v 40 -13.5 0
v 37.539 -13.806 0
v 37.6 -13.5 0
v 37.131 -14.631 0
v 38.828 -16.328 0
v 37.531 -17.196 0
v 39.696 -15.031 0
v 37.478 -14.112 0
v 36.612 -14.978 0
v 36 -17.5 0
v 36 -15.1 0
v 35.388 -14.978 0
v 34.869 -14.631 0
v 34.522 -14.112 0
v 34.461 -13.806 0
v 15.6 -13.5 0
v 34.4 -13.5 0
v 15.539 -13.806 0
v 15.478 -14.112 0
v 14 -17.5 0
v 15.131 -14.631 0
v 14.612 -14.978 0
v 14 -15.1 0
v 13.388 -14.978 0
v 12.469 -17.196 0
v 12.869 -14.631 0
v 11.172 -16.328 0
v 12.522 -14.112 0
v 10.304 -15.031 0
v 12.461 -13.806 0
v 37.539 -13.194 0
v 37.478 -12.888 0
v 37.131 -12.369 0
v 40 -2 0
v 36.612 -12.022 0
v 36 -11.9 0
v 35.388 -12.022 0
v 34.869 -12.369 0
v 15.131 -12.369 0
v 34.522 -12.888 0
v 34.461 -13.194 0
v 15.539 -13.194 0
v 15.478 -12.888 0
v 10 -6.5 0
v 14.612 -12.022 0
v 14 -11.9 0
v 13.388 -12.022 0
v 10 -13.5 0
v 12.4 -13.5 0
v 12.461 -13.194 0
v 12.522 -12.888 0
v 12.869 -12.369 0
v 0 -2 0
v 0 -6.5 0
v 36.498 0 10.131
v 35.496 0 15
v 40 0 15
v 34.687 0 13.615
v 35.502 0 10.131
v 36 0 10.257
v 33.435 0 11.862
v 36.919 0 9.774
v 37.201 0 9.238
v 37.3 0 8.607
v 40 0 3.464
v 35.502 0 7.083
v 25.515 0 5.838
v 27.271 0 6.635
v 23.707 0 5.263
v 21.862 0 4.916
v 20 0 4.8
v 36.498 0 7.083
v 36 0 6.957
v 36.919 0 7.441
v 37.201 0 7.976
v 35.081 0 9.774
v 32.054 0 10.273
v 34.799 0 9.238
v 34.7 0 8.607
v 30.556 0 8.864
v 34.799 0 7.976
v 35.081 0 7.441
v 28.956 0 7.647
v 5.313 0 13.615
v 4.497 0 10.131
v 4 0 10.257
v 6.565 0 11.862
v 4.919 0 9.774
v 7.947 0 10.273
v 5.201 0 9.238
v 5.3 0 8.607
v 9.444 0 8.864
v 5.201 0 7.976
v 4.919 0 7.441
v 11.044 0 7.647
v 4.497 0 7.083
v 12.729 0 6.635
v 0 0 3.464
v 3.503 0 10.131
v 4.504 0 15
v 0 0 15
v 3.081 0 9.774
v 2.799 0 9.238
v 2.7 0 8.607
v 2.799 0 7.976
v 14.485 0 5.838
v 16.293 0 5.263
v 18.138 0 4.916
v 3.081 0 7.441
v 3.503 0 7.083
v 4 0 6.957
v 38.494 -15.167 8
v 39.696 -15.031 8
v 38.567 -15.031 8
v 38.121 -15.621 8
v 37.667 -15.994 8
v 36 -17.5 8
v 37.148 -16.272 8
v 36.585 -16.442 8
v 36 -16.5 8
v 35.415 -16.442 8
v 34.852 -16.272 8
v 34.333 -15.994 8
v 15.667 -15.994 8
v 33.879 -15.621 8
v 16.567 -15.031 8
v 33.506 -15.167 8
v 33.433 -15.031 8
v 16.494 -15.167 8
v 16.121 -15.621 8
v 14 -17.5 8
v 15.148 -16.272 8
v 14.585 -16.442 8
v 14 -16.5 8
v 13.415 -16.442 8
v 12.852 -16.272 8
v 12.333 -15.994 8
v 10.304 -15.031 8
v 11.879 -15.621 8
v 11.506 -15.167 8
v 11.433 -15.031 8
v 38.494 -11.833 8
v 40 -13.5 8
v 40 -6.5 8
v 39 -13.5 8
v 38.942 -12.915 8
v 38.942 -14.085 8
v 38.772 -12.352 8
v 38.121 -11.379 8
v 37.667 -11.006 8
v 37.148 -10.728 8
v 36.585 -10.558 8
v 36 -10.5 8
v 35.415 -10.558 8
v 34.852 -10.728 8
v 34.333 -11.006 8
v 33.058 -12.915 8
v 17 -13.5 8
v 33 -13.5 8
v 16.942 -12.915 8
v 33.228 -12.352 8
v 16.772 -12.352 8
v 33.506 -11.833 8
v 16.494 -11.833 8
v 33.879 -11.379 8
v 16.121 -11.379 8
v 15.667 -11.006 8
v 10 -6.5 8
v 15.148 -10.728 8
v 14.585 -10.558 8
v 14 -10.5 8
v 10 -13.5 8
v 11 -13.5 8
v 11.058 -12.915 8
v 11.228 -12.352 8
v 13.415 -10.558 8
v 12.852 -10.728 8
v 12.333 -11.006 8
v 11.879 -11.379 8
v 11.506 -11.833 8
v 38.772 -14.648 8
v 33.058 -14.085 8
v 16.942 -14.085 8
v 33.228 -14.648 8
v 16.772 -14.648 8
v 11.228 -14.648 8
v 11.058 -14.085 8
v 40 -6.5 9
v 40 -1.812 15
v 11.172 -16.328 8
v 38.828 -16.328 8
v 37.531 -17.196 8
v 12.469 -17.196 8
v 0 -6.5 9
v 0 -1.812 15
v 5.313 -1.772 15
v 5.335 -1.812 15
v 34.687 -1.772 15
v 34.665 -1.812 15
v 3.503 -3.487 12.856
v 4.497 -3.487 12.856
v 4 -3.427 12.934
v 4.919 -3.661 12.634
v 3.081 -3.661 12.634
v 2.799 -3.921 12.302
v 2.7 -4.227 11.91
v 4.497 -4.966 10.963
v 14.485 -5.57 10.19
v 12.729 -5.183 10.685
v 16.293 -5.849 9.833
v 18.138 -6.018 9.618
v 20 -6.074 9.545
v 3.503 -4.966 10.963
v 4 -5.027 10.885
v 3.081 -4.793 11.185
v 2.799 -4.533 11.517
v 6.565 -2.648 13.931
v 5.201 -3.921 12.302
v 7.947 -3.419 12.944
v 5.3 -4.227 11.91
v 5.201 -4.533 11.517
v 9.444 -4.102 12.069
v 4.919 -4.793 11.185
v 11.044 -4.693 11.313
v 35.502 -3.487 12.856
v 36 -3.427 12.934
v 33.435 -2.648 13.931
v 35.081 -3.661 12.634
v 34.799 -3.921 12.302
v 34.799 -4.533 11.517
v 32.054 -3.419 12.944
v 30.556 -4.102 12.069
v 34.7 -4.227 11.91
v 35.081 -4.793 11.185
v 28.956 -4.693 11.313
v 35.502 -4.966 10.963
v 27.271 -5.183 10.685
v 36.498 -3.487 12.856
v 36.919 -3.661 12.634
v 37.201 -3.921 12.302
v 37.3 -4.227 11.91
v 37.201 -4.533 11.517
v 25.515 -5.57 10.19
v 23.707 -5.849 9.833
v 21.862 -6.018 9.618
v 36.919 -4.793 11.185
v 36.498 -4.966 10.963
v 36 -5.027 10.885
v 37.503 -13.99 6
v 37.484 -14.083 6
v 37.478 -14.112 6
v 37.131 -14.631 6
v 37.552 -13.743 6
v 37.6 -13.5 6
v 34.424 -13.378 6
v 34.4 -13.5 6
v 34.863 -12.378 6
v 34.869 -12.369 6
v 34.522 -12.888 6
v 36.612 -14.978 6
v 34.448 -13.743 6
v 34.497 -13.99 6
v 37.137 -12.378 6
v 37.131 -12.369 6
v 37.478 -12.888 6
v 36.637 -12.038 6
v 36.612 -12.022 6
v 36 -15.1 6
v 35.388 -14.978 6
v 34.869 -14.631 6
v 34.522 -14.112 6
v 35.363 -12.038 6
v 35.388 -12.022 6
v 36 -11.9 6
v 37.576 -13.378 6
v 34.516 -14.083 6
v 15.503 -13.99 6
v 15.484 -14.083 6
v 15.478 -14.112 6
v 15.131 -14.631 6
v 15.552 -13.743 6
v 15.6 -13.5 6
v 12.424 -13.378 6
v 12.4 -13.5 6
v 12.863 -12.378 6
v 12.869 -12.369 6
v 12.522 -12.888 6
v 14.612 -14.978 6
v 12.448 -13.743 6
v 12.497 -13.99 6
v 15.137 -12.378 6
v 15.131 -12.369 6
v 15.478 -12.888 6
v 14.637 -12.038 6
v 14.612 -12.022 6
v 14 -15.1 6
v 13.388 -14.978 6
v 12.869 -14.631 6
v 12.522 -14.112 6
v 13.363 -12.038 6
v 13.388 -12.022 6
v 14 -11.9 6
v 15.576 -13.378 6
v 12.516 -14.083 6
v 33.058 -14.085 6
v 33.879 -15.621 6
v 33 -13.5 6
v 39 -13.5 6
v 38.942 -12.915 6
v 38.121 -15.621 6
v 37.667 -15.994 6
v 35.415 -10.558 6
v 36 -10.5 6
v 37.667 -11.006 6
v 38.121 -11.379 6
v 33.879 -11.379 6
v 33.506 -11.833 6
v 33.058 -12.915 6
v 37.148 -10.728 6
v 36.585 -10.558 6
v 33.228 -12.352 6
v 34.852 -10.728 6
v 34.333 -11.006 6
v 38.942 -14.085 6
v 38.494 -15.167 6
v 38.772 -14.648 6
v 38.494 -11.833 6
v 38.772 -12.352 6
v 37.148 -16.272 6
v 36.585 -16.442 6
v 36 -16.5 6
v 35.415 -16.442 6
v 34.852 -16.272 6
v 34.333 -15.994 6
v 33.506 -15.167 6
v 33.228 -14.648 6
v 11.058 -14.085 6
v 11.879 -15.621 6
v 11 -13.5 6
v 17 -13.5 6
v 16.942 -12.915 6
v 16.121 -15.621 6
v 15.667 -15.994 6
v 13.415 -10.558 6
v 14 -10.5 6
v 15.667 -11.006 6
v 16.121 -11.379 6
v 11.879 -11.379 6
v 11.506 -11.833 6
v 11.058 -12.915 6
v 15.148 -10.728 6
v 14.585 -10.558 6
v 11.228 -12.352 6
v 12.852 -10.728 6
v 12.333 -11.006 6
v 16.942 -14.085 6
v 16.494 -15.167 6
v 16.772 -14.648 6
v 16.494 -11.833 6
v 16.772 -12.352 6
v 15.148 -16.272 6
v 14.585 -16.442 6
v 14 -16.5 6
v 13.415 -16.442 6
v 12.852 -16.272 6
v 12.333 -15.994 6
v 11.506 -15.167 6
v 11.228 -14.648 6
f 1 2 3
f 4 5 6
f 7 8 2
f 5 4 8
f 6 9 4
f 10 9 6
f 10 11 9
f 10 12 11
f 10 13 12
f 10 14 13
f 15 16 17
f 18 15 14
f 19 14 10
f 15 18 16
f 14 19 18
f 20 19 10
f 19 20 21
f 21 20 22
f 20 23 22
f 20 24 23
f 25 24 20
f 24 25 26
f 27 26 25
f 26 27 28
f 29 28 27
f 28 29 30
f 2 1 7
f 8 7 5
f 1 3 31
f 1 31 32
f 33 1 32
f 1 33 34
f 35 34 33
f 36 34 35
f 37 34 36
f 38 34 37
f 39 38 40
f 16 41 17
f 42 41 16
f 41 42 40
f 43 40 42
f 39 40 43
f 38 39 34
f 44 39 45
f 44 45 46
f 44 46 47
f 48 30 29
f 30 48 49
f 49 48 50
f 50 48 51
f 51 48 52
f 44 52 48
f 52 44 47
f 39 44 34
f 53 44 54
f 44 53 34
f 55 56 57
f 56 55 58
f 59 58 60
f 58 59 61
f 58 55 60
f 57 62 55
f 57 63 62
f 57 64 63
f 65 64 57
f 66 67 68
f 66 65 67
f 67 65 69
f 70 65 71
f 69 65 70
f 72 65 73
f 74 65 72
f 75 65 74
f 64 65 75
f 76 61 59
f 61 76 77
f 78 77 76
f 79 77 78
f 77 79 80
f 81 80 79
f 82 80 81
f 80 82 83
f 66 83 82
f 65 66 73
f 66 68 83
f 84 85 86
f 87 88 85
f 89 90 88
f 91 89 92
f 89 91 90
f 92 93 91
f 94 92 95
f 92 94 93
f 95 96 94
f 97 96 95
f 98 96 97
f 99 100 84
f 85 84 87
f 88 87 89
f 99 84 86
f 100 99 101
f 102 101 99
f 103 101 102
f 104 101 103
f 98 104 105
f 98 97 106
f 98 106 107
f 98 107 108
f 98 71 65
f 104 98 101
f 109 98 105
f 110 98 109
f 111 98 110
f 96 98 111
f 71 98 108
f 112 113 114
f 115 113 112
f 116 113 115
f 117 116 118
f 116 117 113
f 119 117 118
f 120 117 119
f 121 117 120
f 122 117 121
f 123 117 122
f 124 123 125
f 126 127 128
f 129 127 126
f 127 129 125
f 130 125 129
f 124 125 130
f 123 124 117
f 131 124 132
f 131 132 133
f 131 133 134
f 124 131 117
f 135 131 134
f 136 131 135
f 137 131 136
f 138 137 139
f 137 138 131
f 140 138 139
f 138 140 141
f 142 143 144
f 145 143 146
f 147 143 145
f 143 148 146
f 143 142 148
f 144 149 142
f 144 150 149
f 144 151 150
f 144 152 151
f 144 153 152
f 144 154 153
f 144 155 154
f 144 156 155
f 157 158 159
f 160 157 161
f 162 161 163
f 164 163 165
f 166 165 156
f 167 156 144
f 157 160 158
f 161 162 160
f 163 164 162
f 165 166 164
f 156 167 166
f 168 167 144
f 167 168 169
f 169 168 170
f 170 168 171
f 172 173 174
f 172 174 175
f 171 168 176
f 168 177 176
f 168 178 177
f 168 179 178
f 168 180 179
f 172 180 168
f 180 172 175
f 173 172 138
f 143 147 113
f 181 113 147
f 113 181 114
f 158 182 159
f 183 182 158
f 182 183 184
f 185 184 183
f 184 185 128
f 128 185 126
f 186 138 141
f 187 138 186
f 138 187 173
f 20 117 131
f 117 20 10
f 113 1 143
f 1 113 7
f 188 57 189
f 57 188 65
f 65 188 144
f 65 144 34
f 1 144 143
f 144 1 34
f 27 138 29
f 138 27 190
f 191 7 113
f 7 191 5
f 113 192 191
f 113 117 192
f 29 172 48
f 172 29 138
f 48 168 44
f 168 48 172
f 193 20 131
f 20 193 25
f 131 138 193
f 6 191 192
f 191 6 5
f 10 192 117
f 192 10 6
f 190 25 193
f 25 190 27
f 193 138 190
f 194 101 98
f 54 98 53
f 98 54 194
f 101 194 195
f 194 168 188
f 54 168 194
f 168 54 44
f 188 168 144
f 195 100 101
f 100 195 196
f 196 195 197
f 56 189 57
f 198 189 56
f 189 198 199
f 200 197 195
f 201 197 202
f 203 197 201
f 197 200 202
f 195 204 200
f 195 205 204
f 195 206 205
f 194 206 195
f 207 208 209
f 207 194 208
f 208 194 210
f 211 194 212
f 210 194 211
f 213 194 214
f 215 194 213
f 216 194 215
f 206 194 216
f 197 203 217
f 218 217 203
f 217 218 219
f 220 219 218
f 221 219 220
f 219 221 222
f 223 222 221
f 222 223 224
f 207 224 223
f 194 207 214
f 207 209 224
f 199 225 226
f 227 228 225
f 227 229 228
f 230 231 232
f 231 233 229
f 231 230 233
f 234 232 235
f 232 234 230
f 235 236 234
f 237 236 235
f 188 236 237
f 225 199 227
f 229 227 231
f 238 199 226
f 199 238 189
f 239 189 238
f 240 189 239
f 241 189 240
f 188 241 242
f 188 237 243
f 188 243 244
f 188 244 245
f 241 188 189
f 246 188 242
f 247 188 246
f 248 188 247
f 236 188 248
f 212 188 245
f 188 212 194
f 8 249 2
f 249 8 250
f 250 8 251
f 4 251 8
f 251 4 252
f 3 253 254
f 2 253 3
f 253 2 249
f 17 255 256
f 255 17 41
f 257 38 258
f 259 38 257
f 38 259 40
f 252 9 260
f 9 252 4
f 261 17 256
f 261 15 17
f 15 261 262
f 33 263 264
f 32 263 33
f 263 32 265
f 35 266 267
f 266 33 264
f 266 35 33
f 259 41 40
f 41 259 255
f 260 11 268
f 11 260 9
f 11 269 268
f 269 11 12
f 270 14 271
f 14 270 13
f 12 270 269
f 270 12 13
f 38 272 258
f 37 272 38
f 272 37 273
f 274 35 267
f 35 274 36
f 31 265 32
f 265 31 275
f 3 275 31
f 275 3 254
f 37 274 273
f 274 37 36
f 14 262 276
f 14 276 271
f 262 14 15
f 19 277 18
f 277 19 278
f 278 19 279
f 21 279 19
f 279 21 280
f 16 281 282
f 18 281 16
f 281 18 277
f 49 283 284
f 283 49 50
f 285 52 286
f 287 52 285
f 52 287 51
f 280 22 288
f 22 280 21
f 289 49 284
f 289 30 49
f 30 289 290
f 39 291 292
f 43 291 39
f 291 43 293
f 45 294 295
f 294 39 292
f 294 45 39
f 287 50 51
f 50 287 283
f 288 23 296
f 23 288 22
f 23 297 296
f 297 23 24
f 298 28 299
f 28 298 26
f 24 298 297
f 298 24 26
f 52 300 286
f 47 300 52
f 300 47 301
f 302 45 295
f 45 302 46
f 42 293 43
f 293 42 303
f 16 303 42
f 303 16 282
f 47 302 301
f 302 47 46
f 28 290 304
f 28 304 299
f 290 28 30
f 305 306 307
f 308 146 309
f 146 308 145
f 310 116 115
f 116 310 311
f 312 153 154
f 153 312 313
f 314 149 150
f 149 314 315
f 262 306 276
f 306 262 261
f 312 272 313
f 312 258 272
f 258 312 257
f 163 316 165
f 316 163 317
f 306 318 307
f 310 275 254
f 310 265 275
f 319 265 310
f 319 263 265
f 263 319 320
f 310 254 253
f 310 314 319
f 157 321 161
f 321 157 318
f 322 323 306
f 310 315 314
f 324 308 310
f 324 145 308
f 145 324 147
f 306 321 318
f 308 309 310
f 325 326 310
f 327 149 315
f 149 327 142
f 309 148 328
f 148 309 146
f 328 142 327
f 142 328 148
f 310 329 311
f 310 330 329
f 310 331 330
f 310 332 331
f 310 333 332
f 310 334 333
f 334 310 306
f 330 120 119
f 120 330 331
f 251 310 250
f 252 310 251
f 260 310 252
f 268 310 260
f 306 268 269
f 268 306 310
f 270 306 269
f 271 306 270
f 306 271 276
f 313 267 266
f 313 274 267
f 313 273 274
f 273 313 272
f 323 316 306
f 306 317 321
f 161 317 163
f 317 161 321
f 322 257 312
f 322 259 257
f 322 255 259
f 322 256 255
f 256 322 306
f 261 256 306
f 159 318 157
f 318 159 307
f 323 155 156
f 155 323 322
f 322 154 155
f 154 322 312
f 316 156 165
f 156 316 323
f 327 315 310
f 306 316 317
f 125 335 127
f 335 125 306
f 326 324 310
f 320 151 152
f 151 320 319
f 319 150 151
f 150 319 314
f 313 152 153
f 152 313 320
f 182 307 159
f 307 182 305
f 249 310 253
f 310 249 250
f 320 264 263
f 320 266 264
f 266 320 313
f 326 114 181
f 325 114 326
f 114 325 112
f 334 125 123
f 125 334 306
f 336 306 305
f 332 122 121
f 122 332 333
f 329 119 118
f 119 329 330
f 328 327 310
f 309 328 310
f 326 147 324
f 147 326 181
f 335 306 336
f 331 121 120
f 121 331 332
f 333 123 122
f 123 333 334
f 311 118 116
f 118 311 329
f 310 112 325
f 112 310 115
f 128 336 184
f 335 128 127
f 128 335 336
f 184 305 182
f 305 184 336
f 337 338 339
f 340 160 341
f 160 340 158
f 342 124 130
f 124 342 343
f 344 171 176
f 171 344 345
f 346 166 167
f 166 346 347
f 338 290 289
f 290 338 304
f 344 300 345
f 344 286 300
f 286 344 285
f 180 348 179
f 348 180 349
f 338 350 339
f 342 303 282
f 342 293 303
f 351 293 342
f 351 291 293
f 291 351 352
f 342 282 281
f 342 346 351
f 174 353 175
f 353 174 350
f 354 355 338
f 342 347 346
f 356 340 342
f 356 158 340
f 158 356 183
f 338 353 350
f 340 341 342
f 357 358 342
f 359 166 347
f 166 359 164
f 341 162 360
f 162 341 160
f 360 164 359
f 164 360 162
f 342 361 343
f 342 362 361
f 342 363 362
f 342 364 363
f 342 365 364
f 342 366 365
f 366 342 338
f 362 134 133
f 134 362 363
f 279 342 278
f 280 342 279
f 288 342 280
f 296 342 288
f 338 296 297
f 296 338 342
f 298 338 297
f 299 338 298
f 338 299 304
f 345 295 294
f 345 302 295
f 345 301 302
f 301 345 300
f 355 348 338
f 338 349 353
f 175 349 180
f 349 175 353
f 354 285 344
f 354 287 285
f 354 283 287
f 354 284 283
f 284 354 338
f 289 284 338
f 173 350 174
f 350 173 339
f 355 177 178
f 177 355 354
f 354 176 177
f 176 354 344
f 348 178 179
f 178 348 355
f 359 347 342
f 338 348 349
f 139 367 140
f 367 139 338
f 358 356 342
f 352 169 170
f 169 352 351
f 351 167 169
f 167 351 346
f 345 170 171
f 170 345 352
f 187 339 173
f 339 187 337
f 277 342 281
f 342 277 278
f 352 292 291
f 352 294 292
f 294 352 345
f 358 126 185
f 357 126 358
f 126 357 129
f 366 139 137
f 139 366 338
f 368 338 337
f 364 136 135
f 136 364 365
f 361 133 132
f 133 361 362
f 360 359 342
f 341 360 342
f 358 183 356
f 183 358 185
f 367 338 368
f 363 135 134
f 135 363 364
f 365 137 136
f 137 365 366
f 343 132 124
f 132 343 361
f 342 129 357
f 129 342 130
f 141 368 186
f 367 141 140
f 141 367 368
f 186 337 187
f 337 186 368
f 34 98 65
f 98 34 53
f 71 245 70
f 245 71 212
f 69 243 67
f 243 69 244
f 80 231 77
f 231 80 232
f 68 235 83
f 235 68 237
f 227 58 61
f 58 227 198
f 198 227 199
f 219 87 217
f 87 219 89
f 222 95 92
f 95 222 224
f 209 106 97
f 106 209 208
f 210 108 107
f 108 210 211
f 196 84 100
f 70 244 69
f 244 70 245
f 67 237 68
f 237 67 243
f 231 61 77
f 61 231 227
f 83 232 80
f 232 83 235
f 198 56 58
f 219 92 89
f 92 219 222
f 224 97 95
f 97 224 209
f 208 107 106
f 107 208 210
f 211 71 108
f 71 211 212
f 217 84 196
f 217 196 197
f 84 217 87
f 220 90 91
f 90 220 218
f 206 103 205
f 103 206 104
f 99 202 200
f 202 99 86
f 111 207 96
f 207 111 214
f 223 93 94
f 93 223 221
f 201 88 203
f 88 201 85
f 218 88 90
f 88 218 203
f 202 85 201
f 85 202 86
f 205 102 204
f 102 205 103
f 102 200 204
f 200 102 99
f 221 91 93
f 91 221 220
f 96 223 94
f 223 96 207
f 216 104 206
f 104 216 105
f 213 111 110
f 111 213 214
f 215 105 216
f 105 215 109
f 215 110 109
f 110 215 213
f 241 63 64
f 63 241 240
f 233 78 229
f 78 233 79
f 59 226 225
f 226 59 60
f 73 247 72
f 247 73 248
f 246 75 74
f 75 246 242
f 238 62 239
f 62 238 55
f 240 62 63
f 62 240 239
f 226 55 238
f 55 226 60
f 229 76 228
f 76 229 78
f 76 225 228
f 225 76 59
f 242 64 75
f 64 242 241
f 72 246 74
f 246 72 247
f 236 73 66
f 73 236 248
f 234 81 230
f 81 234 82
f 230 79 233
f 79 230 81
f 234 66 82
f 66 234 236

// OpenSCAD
// RebeliX
//
// Drzak 40mm ventilatoru pro extruder
// GNU GPL v3
// Martin Neruda <neruda@reprap4u.cz>
// http://www.reprap4u.cz

vyska = 20;
offset_fan = 5;

module fan40_holes()
{
  rotate([90,0,0]) translate([20,20,0])
  {
	cylinder(r=19,h=20,$fn=64,center=true);
	translate([-16,-16,0]) cylinder(r=1.3,h=20,$fn=16,center=true);
	translate([16,-16,0]) cylinder(r=1.3,h=20,$fn=16,center=true);
	translate([16,16,0]) cylinder(r=1.3,h=20,$fn=16,center=true);
	translate([-16,16,0]) cylinder(r=1.3,h=20,$fn=16,center=true);	
  }
}

module fan_base()
{
  hull()
  {
    translate([40/2 + 11 + offset_fan,0,vyska-6.5]) rotate([-90,0,0]) cylinder(r=4,h=8,$fn=16);
    translate([40/2 - 11  + offset_fan,0,vyska-6.5]) rotate([-90,0,0]) cylinder(r=4,h=8,$fn=16);
    translate([40/2 - 15 + offset_fan,0,0]) cube([30,8,6.5]);
  }
  translate([0,0,0]) cube([40,12+3,6.5]);
}

module fan_cuts()
{
  translate([-0.1,6+3,6.5]) rotate([-38,0,0]) cube([50,12,6]);
  // Pridelani na extruder
  translate([40/2 + 11 + offset_fan,0,vyska-6.5]) rotate([90,0,0]) cylinder(r=1.6,h=20,$fn=16,center=true);
  translate([40/2 - 11 + offset_fan,0,vyska-6.5]) rotate([90,0,0]) cylinder(r=1.6,h=20,$fn=16,center=true);
  // Zapusteni sroubu
  translate([40/2 + 11 + offset_fan,6,vyska-6.5]) rotate([-90,0,0]) cylinder(r=3,h=10,$fn=32);
  translate([40/2 - 11 + offset_fan,6,vyska-6.5]) rotate([-90,0,0]) cylinder(r=3,h=10,$fn=32);
  // Seriznuti rohu
  translate([0,-0.1,vyska-7]) rotate([0,-45,0]) cube([10,10,10]);
  // Seriznuti drazku ventilatoru
  translate([-1,0,2]) rotate([240,0,0]) cube([50,11,10]);
}

module fan_holder()
{
  difference()
  {
    fan_base();
    fan_cuts();
    translate([0,6+3,7]) rotate([-128,0,0]) fan40_holes();
  }
}

rotate([90,0,0]) fan_holder();
